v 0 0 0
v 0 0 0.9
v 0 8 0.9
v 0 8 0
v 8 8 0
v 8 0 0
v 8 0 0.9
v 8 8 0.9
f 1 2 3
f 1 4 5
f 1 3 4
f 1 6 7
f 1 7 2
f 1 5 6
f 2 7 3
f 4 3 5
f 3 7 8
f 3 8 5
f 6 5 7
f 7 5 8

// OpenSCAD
/* Warning, this is a very basic generator with a lot of approximation 
input data : [VQFN, VWX, 8x8x0.9mm, 56, , A, C04-00352A]
generated by com.zoubworld.electronics.cad.model3d.Basic
Date : Sun Feb 15 10:50:48 CET 2026
*/

//body
color("black")
translate([0,0,0])
cube([8.0,8.0,0.9], center=false);
